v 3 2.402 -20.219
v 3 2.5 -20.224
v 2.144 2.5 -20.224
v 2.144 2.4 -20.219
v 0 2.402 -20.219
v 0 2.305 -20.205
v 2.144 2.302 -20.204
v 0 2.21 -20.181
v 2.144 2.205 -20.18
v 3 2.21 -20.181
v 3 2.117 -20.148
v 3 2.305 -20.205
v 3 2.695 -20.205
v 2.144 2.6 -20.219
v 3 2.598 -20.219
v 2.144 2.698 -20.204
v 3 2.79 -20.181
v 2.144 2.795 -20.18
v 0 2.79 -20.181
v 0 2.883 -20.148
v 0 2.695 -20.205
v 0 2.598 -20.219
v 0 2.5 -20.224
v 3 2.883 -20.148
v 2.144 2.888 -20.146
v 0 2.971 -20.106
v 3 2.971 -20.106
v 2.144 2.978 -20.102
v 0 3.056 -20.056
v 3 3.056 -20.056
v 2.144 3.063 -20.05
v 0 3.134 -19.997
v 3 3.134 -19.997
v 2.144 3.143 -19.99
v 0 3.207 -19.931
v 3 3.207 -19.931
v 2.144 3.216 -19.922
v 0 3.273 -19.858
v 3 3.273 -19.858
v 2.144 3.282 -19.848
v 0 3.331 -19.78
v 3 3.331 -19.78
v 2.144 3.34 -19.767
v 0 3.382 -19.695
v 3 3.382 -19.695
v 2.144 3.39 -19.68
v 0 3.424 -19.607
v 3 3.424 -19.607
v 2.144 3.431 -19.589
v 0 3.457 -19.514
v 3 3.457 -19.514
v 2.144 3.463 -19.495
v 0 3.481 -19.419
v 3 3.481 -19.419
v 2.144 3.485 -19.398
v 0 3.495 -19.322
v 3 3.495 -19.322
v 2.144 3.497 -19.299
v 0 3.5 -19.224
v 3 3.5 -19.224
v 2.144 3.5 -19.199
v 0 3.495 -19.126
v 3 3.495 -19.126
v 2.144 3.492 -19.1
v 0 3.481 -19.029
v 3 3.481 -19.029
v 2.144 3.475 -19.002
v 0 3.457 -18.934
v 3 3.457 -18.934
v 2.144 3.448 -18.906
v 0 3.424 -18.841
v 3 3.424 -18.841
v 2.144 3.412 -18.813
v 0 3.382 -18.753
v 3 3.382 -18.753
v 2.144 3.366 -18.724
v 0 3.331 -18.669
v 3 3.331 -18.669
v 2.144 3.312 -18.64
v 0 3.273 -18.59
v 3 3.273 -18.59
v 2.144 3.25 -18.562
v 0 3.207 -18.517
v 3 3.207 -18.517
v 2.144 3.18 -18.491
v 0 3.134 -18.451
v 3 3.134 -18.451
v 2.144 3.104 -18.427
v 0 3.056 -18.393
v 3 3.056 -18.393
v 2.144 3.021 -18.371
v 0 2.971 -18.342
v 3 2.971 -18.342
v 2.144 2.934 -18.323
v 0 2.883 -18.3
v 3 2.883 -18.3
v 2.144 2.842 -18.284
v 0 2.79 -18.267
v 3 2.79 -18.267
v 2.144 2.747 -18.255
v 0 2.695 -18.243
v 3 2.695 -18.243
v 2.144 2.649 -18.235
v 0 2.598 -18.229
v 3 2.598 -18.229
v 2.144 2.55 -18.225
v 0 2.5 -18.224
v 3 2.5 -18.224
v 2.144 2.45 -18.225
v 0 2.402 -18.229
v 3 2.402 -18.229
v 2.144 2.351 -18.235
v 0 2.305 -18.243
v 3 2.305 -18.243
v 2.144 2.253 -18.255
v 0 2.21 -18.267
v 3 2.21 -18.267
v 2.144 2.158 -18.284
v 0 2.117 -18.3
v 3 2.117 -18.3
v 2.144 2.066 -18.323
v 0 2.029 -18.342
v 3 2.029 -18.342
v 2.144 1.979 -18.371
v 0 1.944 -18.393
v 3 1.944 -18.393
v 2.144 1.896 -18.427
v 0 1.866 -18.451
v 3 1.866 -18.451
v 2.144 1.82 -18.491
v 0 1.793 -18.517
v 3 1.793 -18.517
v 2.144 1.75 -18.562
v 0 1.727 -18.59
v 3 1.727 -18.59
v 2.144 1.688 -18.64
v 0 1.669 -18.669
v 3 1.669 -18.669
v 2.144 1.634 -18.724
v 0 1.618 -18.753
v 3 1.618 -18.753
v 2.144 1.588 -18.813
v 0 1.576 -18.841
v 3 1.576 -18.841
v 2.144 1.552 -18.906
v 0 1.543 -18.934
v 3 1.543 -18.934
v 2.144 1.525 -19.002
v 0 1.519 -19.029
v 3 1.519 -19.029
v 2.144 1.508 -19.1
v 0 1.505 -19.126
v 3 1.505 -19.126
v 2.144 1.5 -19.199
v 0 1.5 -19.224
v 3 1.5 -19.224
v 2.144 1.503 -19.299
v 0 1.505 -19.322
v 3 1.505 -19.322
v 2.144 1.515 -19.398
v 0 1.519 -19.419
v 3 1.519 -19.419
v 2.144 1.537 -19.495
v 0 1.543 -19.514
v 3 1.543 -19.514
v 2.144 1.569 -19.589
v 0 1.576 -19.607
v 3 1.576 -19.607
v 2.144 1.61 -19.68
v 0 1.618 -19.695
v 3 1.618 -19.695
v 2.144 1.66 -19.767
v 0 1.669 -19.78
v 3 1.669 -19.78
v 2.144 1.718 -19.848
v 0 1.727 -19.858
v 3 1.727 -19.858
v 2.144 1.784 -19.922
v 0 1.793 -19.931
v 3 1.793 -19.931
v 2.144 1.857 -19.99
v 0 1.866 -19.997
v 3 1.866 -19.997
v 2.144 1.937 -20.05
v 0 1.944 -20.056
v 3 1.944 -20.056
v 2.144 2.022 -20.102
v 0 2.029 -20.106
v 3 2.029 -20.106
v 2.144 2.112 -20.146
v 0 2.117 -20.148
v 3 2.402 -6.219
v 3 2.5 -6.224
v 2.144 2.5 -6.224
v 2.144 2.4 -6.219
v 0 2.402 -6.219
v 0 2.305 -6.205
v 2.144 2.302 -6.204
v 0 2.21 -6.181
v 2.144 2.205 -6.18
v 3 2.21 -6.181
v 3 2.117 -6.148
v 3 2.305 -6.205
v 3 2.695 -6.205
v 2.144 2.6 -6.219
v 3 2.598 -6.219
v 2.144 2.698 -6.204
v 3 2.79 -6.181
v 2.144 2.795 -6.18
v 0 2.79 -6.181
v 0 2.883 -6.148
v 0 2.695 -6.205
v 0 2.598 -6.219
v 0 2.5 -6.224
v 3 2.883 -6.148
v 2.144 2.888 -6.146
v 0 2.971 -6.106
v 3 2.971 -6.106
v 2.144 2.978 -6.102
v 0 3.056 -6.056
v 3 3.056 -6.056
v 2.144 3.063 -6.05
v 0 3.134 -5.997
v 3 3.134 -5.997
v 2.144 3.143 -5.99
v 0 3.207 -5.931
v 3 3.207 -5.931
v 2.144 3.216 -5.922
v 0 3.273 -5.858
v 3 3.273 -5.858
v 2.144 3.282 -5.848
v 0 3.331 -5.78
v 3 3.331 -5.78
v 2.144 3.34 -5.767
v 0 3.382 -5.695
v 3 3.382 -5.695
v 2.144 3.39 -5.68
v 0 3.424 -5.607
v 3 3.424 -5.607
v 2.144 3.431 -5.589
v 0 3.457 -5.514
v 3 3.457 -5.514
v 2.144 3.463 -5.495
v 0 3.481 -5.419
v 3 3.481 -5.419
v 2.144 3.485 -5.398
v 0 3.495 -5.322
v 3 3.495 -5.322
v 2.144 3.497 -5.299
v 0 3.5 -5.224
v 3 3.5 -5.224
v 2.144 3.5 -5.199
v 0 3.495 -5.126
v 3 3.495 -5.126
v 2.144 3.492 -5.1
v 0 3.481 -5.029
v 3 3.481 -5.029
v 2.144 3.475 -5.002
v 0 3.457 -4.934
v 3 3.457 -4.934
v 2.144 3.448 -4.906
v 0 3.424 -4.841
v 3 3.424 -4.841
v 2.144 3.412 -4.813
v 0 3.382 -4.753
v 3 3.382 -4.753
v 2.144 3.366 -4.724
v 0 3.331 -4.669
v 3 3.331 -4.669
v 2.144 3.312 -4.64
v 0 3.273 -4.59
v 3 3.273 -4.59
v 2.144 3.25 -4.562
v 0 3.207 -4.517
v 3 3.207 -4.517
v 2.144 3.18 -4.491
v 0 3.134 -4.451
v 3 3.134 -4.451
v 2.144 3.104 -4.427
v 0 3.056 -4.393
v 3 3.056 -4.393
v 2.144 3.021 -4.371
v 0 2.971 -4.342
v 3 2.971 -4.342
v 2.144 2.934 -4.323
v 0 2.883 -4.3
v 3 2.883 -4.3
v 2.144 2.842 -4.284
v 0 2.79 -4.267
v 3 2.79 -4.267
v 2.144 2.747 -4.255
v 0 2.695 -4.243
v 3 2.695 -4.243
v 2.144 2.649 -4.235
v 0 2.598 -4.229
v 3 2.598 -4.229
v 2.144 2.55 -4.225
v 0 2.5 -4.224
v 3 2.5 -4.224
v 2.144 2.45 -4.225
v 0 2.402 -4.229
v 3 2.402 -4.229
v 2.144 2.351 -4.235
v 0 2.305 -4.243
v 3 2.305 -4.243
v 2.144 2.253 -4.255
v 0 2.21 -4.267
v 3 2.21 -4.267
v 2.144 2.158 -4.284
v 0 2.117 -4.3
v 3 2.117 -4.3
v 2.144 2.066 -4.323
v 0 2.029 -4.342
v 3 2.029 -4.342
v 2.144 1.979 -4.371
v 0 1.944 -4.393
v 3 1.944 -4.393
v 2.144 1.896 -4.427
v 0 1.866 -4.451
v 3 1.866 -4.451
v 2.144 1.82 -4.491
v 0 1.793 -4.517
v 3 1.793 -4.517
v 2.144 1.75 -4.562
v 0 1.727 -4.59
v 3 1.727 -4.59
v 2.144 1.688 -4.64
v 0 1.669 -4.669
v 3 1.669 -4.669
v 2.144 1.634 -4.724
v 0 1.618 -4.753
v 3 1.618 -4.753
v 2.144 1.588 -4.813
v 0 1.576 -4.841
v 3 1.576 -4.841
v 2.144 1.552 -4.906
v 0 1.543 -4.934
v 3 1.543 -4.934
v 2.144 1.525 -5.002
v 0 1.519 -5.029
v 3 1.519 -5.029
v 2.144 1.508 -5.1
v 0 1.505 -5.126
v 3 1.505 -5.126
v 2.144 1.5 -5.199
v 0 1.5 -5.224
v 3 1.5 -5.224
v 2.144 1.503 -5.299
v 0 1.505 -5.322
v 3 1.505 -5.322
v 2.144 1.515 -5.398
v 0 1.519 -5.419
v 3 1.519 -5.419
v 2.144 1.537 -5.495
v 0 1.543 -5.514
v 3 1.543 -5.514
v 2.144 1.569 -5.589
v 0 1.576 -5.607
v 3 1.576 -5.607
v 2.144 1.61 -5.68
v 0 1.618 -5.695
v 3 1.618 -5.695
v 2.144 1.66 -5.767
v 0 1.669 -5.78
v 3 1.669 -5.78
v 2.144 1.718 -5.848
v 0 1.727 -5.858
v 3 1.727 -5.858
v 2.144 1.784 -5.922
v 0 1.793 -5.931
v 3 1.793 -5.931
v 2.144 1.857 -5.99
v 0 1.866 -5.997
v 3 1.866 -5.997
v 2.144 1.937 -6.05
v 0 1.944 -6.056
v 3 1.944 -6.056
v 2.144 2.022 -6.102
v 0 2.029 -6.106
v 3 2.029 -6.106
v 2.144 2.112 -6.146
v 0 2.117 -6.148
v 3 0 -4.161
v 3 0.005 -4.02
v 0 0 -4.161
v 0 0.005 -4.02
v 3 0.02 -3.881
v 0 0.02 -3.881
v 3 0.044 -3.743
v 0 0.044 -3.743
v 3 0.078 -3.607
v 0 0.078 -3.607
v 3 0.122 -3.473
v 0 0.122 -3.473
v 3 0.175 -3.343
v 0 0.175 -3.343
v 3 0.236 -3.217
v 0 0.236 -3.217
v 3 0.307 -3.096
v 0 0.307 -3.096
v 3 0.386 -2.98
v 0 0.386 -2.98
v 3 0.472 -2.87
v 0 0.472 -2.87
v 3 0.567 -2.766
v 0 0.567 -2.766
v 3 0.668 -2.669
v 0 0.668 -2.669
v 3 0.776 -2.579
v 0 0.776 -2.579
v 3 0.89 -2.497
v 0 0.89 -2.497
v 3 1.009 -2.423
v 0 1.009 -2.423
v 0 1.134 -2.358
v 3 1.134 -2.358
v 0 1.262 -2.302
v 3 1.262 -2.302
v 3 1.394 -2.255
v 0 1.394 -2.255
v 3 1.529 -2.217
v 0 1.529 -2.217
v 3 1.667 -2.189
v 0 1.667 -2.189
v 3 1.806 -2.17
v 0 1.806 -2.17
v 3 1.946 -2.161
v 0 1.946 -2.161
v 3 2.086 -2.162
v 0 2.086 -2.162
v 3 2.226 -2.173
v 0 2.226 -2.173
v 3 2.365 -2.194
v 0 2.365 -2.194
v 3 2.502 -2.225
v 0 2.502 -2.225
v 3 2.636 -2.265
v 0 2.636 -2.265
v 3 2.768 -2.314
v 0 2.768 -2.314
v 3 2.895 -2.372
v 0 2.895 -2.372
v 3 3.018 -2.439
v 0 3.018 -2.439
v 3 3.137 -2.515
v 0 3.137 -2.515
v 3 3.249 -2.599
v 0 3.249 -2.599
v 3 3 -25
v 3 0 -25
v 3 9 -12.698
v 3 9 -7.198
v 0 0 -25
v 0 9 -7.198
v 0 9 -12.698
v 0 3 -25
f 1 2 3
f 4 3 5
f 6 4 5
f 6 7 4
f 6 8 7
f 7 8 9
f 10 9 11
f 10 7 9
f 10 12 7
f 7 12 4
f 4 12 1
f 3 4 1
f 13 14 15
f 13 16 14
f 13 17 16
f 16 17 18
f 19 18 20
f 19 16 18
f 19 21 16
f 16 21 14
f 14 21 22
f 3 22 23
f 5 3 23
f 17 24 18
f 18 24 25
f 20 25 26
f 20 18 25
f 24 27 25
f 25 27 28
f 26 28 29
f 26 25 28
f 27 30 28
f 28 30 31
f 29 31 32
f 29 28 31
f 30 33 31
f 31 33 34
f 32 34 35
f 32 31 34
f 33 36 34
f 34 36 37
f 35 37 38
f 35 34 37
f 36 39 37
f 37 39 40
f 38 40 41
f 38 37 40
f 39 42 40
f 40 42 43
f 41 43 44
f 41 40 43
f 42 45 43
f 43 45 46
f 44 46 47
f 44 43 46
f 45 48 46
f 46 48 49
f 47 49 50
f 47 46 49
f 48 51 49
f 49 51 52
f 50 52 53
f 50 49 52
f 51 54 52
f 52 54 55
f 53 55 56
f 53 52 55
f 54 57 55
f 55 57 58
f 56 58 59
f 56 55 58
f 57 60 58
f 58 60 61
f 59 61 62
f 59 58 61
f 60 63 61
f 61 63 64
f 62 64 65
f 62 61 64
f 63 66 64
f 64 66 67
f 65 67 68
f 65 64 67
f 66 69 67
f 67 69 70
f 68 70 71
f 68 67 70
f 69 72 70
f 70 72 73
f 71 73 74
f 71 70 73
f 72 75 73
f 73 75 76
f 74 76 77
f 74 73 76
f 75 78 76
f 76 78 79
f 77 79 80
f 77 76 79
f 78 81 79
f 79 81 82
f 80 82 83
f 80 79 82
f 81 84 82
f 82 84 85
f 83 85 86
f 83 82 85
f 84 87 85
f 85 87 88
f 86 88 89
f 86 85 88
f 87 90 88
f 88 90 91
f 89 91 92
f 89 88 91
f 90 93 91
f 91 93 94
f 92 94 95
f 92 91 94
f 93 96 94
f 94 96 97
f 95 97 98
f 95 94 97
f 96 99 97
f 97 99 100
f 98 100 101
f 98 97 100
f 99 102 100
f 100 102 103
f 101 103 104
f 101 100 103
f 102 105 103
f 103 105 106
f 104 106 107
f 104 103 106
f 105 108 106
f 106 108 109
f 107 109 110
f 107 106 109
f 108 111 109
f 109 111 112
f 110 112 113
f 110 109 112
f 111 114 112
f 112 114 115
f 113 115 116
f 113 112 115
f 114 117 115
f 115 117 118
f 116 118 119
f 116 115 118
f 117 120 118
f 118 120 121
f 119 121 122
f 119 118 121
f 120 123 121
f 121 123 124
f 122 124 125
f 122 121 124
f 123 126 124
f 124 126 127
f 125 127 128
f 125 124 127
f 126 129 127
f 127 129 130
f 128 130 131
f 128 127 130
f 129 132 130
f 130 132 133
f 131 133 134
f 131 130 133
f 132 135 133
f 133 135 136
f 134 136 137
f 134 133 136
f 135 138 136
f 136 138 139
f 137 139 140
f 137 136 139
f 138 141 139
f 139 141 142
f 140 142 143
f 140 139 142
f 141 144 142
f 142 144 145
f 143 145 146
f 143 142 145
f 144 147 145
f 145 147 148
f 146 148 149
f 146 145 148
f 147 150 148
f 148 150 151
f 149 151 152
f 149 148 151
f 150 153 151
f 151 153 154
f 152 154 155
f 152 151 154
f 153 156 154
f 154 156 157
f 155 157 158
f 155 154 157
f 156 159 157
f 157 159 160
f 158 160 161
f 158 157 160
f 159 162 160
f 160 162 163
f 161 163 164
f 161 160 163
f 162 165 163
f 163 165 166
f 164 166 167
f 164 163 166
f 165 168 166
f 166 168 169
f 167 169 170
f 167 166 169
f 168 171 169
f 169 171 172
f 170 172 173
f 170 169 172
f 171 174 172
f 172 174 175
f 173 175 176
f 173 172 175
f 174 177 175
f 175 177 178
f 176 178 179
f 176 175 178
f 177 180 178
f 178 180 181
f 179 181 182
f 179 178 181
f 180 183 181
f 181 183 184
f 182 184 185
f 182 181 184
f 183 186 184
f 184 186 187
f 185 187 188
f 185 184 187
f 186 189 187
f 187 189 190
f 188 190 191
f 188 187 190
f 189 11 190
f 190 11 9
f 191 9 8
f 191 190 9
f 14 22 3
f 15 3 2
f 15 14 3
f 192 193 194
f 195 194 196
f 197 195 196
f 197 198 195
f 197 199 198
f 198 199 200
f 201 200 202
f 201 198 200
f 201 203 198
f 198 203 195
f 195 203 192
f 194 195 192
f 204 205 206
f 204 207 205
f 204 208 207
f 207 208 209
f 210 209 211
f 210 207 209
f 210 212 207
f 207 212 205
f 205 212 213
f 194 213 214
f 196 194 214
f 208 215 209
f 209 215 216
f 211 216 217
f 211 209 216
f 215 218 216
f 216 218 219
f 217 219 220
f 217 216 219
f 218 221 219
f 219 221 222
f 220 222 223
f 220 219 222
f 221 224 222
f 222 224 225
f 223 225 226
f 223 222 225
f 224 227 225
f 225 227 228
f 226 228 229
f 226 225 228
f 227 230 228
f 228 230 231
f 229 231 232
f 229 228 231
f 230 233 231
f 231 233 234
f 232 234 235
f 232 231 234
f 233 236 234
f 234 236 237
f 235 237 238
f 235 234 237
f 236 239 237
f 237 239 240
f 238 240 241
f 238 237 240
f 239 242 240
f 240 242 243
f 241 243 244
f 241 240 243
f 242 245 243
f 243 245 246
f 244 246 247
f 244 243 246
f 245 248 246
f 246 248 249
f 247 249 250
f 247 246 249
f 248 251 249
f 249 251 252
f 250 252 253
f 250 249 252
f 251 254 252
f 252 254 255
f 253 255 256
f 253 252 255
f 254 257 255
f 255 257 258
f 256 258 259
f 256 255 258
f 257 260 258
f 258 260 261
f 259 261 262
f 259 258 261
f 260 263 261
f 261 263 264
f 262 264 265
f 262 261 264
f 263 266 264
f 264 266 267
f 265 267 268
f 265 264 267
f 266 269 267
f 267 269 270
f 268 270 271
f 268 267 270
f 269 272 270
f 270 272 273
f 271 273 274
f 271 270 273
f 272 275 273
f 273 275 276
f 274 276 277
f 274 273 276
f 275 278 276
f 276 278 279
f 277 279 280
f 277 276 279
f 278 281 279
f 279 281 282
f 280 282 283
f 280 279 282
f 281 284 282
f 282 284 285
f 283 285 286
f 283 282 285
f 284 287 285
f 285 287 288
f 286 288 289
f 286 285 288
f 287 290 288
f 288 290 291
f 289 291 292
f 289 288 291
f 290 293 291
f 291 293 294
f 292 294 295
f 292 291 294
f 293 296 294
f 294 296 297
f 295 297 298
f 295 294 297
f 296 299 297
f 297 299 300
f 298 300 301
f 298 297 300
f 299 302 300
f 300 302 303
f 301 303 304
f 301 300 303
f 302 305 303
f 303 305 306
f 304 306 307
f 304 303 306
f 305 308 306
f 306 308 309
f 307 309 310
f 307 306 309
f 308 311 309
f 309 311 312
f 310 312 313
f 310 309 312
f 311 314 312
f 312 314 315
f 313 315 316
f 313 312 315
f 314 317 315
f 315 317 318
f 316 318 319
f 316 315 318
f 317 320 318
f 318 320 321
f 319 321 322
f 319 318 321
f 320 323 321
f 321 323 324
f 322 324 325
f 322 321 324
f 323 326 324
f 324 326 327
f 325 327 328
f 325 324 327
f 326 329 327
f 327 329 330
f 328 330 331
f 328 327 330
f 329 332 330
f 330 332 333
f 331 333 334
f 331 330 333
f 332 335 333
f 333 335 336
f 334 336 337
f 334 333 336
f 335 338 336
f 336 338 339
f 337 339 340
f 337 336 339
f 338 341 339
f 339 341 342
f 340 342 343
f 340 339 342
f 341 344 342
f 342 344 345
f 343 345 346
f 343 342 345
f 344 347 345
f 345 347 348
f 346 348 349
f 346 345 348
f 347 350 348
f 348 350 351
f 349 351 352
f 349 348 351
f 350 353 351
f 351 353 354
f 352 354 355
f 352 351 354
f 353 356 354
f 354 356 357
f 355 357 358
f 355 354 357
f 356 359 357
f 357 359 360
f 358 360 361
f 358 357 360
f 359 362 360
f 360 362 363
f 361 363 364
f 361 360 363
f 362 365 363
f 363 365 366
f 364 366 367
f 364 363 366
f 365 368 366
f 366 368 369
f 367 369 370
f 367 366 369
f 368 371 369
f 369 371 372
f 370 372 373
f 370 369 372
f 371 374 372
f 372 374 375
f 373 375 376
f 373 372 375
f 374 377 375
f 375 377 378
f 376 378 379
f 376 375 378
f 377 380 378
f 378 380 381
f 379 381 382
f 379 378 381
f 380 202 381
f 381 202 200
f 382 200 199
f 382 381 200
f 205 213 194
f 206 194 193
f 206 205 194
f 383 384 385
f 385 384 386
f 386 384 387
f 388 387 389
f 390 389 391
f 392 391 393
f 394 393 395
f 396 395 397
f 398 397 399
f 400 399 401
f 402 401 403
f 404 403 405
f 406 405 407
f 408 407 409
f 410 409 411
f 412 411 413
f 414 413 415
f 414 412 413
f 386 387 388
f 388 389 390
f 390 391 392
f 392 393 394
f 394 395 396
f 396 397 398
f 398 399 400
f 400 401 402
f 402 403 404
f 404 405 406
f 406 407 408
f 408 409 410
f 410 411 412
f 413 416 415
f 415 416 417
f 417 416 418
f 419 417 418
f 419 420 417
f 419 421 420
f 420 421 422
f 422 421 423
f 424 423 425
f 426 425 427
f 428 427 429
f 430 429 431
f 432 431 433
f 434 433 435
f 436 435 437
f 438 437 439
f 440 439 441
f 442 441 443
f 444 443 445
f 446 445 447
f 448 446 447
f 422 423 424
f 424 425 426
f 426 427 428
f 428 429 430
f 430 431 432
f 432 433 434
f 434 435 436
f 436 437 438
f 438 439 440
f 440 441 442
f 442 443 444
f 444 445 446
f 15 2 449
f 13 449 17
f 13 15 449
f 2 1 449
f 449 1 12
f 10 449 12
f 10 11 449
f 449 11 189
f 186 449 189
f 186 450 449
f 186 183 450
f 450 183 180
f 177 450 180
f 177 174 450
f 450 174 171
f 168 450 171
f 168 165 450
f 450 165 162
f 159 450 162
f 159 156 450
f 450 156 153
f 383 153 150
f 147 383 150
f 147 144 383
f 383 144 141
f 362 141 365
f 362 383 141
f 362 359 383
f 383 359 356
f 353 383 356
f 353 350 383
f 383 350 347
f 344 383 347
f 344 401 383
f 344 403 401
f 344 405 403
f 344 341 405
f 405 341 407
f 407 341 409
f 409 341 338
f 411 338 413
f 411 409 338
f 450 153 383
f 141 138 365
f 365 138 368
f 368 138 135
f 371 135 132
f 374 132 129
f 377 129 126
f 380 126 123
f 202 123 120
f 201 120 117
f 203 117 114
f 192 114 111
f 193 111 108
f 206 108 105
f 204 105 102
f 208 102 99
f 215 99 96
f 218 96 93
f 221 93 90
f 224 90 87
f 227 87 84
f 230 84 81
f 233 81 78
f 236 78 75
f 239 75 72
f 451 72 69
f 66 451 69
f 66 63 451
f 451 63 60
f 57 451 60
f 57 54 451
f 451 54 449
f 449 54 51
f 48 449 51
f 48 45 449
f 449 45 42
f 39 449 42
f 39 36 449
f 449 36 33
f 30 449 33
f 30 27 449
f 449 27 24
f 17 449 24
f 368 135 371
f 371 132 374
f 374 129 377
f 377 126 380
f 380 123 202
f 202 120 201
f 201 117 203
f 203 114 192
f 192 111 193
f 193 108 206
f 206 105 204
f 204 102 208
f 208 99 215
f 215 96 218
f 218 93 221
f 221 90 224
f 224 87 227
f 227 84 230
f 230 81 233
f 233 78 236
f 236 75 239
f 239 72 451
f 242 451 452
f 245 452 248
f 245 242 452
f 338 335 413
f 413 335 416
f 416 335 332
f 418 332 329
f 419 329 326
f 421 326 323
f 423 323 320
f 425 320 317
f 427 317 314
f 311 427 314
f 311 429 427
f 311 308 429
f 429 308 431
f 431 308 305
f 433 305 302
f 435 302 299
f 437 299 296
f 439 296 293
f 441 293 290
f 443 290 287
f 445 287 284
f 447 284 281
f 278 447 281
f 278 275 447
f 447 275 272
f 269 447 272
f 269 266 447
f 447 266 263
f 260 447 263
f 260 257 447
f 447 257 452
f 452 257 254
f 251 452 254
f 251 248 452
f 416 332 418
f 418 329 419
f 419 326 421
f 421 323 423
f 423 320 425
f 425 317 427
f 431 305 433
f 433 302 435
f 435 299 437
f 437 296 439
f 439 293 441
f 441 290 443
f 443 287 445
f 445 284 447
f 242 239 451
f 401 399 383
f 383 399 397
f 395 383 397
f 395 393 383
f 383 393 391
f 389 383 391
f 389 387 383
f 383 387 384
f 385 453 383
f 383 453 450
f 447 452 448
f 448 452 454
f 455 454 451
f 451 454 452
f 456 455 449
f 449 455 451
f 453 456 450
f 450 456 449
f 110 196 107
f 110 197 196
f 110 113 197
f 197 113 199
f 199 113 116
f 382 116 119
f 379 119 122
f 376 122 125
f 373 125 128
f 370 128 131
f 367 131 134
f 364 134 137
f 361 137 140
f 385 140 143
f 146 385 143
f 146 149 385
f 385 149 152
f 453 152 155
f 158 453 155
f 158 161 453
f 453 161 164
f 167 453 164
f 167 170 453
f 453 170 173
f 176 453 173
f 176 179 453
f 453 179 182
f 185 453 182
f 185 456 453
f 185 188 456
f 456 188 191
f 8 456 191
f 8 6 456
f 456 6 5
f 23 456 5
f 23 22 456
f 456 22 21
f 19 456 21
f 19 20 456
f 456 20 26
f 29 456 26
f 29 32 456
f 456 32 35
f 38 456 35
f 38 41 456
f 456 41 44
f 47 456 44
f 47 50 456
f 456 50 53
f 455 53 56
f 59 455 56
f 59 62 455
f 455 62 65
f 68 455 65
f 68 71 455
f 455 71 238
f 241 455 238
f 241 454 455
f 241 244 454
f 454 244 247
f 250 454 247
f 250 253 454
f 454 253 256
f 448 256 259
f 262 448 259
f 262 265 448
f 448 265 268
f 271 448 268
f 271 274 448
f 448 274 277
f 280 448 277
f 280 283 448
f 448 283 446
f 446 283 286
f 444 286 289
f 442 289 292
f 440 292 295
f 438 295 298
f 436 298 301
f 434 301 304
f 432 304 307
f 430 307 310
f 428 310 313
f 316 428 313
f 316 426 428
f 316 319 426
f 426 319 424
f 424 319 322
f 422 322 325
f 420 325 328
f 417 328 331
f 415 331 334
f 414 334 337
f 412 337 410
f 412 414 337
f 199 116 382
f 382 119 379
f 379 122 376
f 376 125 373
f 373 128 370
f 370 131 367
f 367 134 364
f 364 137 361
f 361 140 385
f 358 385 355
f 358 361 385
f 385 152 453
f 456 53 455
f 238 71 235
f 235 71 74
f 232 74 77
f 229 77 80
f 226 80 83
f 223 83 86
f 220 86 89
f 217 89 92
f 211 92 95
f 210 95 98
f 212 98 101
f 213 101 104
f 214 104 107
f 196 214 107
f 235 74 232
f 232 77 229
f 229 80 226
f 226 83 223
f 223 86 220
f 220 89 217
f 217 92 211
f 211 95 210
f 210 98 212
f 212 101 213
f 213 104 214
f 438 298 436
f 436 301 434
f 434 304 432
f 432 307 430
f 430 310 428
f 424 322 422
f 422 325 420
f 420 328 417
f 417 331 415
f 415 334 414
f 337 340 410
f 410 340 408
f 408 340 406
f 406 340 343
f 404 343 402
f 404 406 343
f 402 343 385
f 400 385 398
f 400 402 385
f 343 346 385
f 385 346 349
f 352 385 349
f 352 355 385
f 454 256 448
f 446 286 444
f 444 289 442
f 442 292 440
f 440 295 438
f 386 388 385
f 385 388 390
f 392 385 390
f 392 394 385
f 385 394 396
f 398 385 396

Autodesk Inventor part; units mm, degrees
ref_plane "YZ Plane" through (0, 0, 0) normal (1, 0, 0) x (0, 1, 0)
ref_plane "XZ Plane" through (0, 0, 0) normal (0, 1, 0) x (-1, 0, 0)
ref_plane "XY Plane" through (0, 0, 0) normal (0, 0, 1) x (1, 0, 0)
sketch "Base" plane through (0, 0, 0) normal (1, 0, 0) x (0, 1, 0)
  line L0 (3, -25) -> (0, -25)
  line L1 (3, -25) -> (9, -12.6982)
  line L2 (9, -12.6982) -> (9, -7.1982)
  line L3 (9, -7.1982) -> (0, 0)
  line L4 (0, -25) -> (0, 0)
  dimension "d0" = 9
  dimension "d2" = 26
  dimension "d3" = 25
  dimension "d4" = 3
  dimension "d24" = 5.5
extrude "BaseFeature" add sketch "Base" along normal blind 3
fillet "BaseFilletsFeature" radius 2 1 edges at (1.5, 0, 0)
sketch "BaseHoles" plane through (0, 0, 0) normal (-1, 0, 0) x (0, 0, 1)
  line L0 (-25, 2.5) -> (-2.2241, 2.5) construction
  line L1 (-2.5987, 3.2492) -> (-7.1982, 9) construction
  circle A0 centre (-19.2241, 2.5) radius 1.75
  circle A1 centre (-5.2241, 2.5) radius 1.75
  line L2 (-4.1606, 0) -> (-25, 0) projected
  arc A2 (-4.1606, 0) -> (-2.5987, 3.2492) centre (-4.1606, 2) ccw projected
  line L3 (-25, 0) -> (-25, 3) projected
  dimension "d9" = 3.5
  dimension "d12" = 3
  dimension "d23" = 14
  dimension "d25" = 2.5
hole "BaseHolesFeature" at (0, 2.5, -19.2241) at (0, 2.5, -5.2241) direction (1, 0, 0) diameter 2 end through all
properties part number "Knuckle"
